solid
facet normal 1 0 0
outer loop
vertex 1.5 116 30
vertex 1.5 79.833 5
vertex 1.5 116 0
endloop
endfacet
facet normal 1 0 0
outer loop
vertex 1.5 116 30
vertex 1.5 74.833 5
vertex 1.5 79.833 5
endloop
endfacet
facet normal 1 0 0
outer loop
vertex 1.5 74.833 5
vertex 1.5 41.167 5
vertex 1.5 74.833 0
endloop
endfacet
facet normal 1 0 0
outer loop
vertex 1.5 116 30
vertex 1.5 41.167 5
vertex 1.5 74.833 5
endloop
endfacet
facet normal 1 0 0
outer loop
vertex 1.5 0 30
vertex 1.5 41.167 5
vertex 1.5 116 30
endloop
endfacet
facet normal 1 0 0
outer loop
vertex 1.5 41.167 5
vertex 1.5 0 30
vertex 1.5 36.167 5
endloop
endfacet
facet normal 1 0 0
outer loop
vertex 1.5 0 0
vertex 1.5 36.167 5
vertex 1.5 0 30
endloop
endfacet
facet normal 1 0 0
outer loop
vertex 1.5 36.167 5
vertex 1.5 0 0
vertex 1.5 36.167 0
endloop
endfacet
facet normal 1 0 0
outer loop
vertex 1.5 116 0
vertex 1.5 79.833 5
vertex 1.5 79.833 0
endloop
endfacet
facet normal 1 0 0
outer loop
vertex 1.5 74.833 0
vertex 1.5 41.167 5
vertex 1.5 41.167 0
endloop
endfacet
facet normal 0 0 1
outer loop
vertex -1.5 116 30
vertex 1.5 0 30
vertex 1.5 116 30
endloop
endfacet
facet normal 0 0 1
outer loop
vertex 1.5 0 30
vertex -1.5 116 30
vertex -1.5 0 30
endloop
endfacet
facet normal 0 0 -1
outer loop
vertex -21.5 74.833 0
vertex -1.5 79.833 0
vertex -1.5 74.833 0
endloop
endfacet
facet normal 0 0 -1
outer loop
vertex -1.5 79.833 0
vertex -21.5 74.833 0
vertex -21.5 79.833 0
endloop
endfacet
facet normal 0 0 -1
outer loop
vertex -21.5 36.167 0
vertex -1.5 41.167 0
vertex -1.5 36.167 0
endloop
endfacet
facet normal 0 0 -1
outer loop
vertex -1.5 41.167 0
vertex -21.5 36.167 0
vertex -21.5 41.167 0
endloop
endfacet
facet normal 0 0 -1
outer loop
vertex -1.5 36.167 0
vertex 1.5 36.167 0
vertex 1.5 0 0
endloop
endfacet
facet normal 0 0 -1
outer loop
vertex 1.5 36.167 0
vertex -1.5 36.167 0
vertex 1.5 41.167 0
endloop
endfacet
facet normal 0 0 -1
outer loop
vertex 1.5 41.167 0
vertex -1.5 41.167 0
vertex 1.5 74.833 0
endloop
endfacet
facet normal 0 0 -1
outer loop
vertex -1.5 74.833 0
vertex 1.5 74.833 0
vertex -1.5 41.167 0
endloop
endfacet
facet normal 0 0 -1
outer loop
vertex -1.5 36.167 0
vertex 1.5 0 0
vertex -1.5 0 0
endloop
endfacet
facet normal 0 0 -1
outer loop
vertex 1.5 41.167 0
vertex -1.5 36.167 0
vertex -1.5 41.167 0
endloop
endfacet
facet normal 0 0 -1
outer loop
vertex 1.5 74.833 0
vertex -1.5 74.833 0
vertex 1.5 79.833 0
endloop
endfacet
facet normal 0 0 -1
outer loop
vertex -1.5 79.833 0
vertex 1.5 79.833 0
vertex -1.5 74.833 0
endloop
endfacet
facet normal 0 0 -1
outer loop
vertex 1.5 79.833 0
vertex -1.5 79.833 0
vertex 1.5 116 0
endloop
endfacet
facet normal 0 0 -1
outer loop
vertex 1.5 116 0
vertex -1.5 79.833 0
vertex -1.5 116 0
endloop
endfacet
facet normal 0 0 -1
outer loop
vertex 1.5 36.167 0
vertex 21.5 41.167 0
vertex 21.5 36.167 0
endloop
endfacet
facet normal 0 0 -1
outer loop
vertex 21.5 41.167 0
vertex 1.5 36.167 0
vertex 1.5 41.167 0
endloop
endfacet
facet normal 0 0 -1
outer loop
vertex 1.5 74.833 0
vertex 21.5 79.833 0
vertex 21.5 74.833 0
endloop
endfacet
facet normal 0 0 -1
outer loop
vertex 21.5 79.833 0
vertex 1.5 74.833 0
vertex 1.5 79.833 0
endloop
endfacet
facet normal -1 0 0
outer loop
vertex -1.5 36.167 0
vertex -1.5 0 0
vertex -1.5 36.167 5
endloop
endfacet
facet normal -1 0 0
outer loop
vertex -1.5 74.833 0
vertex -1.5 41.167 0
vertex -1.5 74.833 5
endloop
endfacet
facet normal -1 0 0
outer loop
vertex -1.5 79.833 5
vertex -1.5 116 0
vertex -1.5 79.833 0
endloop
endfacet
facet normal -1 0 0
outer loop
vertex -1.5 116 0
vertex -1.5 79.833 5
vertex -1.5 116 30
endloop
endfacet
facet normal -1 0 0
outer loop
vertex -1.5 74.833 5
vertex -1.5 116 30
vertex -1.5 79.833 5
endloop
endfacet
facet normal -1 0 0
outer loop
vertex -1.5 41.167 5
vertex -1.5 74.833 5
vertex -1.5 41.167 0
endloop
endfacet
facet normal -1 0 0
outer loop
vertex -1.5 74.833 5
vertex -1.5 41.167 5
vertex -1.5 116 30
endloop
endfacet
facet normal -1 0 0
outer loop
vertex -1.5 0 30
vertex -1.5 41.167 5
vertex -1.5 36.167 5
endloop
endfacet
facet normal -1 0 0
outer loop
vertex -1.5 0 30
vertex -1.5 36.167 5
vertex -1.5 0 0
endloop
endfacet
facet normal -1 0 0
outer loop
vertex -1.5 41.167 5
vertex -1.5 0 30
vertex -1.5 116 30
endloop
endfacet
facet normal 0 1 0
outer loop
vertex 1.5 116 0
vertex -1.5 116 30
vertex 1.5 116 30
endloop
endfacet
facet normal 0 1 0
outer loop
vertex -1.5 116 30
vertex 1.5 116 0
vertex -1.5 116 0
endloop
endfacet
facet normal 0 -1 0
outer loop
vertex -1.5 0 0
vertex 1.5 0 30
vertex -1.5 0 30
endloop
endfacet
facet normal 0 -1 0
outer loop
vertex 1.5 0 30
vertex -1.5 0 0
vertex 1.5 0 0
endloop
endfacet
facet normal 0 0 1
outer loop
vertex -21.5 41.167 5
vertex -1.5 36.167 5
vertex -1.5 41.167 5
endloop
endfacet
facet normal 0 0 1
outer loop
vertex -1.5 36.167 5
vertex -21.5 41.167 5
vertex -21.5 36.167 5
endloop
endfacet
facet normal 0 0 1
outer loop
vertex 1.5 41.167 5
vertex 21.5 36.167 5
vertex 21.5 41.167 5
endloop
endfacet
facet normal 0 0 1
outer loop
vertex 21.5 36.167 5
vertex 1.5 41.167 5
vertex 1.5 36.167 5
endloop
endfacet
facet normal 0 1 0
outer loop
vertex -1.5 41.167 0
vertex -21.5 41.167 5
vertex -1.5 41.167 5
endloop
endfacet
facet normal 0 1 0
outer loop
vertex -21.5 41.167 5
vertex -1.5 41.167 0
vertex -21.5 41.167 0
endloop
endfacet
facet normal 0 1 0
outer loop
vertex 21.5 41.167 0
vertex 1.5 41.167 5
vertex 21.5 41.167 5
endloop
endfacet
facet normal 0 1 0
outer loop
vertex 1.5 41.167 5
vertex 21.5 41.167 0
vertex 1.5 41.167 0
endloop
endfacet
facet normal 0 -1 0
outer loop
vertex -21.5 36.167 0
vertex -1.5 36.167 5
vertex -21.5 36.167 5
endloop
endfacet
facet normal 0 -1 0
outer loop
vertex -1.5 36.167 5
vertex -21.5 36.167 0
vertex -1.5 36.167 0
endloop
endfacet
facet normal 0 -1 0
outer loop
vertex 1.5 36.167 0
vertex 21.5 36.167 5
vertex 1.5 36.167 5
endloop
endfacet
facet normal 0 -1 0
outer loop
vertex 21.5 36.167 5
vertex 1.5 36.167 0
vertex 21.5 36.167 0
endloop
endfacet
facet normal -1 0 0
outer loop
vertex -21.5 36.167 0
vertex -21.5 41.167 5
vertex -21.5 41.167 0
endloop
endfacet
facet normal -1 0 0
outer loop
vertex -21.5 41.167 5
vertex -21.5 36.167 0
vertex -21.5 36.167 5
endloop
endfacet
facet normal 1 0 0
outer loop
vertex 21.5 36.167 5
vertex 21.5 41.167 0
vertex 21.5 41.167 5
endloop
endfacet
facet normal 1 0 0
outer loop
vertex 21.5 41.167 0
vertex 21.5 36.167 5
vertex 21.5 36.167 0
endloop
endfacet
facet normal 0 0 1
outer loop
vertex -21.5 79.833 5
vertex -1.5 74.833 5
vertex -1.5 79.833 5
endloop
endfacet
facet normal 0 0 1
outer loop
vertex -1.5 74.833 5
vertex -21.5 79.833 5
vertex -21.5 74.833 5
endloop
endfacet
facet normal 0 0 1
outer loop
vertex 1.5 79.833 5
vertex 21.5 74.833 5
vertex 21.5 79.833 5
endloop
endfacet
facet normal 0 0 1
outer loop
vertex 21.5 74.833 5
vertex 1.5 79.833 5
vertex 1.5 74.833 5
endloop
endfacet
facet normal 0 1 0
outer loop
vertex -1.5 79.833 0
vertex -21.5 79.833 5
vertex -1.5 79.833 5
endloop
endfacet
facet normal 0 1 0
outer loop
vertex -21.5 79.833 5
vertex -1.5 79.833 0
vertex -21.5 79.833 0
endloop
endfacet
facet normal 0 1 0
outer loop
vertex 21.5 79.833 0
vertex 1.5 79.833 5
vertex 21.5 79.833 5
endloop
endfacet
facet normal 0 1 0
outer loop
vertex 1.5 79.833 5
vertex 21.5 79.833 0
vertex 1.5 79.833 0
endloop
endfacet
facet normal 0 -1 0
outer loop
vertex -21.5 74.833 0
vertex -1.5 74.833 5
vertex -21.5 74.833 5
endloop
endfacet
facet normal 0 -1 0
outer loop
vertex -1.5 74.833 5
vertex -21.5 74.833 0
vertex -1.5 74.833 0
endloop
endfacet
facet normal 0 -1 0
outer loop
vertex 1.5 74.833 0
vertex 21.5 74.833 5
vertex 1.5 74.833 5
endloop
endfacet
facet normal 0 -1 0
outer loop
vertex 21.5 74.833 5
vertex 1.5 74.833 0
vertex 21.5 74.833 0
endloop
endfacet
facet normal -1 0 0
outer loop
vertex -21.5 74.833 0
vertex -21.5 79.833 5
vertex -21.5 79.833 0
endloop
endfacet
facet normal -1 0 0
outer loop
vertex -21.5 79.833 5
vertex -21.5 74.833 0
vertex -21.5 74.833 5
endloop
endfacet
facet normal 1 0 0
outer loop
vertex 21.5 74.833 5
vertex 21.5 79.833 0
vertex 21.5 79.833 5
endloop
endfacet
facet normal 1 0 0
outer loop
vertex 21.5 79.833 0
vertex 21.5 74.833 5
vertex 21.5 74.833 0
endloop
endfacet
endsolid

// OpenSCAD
// divider
$fa = 1;
$fs = 0.1;

// Length: 116 mm
// dip_width: 3 mm
// dip heigth: 1 mm
// height: 36 mm

module wall(l=116, w=3, h=30, dw=3, dh=1) {
    translate([-Width/2,0,0]){
      cube([w, l, h], center=false);
      translate([0,0,-dh]) cube([dw,l,dh+1]);
    }
}
module foot(l=40, w=5, h=5, ) {
    translate([0,0,h/2])
    rotate([0,0,90]) 
    cube([w, l, h], center=true);
}
// consts
Length = 116;
Height = 30;
Width = 3;
FootExtend = 20;
FootLength = 2*FootExtend + Width;
FootHeight = 5;
FootWidth = 5;
FootPlaceDist = Length / 3;
DipWidth = 3;
DipHeight = 0;
// geometry
wall(Length, Width, Height, DipWidth, DipHeight); // wall
translate([0, FootPlaceDist,0])  
        foot(FootLength, FootWidth, FootHeight); // foot 1
translate([0, 2* FootPlaceDist,0])  
        foot(FootLength, FootWidth, FootHeight); // foot 2
